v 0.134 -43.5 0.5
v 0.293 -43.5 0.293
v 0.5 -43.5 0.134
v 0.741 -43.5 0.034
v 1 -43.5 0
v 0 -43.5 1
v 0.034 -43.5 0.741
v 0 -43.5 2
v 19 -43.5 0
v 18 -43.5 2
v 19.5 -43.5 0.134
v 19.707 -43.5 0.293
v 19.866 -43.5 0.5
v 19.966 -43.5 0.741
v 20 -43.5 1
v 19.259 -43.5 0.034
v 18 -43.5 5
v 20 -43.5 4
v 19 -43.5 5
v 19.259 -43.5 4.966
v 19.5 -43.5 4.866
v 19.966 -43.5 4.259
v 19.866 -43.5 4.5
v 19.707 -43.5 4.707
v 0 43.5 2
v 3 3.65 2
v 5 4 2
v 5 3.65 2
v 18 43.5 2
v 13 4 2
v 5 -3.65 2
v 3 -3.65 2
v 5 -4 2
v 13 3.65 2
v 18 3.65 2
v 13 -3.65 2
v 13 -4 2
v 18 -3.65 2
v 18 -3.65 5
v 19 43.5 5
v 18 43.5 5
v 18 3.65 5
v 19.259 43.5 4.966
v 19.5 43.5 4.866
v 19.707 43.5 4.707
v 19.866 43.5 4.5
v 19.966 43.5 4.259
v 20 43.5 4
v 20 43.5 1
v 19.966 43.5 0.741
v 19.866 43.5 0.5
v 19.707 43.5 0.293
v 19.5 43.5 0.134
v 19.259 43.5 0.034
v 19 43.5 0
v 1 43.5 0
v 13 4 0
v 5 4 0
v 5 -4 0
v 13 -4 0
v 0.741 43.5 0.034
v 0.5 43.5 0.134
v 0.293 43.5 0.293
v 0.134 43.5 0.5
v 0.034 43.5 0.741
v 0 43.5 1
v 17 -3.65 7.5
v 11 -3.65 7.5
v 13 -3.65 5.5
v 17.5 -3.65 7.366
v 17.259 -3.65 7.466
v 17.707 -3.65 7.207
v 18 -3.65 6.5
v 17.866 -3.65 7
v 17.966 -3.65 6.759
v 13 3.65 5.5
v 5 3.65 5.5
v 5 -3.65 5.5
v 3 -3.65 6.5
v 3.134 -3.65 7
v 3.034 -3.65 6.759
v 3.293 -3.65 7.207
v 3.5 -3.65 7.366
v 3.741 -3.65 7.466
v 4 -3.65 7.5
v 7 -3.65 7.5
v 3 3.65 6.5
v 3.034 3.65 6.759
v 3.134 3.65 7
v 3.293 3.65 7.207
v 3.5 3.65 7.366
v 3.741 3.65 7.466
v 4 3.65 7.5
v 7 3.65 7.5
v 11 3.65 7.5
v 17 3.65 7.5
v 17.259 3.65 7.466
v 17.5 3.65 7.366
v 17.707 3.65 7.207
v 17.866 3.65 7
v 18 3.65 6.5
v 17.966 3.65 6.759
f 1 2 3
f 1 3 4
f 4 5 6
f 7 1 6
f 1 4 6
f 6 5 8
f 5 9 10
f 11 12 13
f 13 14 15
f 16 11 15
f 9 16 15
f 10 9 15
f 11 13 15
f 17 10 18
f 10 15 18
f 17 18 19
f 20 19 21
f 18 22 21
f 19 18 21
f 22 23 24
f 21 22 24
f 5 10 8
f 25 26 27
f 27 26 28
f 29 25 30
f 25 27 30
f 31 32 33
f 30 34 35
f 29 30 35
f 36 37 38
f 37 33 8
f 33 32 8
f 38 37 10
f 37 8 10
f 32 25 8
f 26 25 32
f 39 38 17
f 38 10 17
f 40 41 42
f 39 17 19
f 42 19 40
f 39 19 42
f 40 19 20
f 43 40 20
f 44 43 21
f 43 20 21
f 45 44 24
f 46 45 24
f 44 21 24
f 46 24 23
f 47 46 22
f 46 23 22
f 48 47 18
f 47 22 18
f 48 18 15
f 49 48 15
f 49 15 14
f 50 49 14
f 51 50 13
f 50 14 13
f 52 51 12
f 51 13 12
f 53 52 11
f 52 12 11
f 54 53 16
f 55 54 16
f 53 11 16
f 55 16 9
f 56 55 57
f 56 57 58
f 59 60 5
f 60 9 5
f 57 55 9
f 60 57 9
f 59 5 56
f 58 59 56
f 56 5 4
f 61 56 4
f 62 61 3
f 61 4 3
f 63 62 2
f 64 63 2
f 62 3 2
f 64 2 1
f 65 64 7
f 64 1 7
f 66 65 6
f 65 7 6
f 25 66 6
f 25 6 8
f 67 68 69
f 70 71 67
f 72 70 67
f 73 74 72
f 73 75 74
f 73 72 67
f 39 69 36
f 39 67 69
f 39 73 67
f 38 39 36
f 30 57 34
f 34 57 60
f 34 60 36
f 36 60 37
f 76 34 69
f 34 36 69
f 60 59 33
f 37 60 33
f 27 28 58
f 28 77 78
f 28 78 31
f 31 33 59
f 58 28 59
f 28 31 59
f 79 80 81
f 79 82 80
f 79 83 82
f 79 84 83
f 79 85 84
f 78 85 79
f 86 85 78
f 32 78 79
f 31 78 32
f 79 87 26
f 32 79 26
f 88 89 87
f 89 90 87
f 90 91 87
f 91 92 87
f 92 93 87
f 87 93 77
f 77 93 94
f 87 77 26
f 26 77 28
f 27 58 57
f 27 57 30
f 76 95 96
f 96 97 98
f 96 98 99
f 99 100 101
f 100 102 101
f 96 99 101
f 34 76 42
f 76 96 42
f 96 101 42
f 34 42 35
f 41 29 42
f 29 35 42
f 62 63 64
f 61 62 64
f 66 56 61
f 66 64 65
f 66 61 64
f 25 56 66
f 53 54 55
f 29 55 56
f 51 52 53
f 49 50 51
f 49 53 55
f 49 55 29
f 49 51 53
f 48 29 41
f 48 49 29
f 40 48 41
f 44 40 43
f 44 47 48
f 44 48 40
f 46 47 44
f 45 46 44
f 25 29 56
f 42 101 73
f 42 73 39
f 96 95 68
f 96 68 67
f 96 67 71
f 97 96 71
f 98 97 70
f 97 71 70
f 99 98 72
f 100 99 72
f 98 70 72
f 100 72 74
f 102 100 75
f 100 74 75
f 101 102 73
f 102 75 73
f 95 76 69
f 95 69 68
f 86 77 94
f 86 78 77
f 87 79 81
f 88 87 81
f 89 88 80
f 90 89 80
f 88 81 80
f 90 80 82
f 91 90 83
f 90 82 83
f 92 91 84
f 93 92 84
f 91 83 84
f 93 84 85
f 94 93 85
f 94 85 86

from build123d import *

# Parameters (mm, degrees)
PAD002_DEPTH        = 4
PAD001_DEPTH        = 3.65
PAD_DEPTH           = 43.5
CUT_PLACEMENT_ANGLE = 180


with BuildPart() as trou_carre001:
    # Sketch002 → Pad002 (new body, symmetric)
    with BuildSketch(Plane.XZ):
        Polygon((5, 3), (13, 3), (13, -3.5), (10.19766, -6.30234), (7.80234, -6.30234), (5, -3.5), align=None)
    extrude(amount=PAD002_DEPTH, both=True)


with BuildPart() as insert001:
    # Sketch001 → Pad001 (new body, symmetric)
    with BuildSketch(Plane.XZ):
        with BuildLine():
            Line((4, -5.5), (17, -5.5))
            ThreePointArc((17, -5.5), (17.707107, -5.207107), (18, -4.5))
            Line((18, -4.5), (18, 0))
            Line((3, 0), (18, 0))
            Line((3, -4.5), (3, 0))
            ThreePointArc((3, -4.5), (3.292893, -5.207107), (4, -5.5))
        make_face()
    extrude(amount=PAD001_DEPTH, both=True)


with BuildPart() as protection_alim:
    # Sketch → Pad (new body, symmetric)
    with BuildSketch(Plane.XZ):
        with BuildLine():
            Line((0, 0), (18, 0))
            Line((18, 0), (18, -3))
            Line((18, -3), (19, -3))
            ThreePointArc((19, -3), (19.707107, -2.707107), (20, -2))
            Line((20, -2), (20, 1))
            ThreePointArc((20, 1), (19.707107, 1.707107), (19, 2))
            Line((19, 2), (1, 2))
            ThreePointArc((1, 2), (0.292893, 1.707107), (0, 1))
            Line((0, 1), (0, 0))
        make_face()
    extrude(amount=PAD_DEPTH, both=True)

    # Fusion: union insert001
    add(insert001.part)

    # Cut: cut trou_carre001
    add(trou_carre001.part, mode=Mode.SUBTRACT)


with BuildPart() as protection_alim_1:
    # Cut placement: moved
    add(protection_alim.part.moved(Location((0, 0, 2))).rotate(Axis((0, 0, 2), (1, 0, 0)), CUT_PLACEMENT_ANGLE))


solid = protection_alim_1.part
